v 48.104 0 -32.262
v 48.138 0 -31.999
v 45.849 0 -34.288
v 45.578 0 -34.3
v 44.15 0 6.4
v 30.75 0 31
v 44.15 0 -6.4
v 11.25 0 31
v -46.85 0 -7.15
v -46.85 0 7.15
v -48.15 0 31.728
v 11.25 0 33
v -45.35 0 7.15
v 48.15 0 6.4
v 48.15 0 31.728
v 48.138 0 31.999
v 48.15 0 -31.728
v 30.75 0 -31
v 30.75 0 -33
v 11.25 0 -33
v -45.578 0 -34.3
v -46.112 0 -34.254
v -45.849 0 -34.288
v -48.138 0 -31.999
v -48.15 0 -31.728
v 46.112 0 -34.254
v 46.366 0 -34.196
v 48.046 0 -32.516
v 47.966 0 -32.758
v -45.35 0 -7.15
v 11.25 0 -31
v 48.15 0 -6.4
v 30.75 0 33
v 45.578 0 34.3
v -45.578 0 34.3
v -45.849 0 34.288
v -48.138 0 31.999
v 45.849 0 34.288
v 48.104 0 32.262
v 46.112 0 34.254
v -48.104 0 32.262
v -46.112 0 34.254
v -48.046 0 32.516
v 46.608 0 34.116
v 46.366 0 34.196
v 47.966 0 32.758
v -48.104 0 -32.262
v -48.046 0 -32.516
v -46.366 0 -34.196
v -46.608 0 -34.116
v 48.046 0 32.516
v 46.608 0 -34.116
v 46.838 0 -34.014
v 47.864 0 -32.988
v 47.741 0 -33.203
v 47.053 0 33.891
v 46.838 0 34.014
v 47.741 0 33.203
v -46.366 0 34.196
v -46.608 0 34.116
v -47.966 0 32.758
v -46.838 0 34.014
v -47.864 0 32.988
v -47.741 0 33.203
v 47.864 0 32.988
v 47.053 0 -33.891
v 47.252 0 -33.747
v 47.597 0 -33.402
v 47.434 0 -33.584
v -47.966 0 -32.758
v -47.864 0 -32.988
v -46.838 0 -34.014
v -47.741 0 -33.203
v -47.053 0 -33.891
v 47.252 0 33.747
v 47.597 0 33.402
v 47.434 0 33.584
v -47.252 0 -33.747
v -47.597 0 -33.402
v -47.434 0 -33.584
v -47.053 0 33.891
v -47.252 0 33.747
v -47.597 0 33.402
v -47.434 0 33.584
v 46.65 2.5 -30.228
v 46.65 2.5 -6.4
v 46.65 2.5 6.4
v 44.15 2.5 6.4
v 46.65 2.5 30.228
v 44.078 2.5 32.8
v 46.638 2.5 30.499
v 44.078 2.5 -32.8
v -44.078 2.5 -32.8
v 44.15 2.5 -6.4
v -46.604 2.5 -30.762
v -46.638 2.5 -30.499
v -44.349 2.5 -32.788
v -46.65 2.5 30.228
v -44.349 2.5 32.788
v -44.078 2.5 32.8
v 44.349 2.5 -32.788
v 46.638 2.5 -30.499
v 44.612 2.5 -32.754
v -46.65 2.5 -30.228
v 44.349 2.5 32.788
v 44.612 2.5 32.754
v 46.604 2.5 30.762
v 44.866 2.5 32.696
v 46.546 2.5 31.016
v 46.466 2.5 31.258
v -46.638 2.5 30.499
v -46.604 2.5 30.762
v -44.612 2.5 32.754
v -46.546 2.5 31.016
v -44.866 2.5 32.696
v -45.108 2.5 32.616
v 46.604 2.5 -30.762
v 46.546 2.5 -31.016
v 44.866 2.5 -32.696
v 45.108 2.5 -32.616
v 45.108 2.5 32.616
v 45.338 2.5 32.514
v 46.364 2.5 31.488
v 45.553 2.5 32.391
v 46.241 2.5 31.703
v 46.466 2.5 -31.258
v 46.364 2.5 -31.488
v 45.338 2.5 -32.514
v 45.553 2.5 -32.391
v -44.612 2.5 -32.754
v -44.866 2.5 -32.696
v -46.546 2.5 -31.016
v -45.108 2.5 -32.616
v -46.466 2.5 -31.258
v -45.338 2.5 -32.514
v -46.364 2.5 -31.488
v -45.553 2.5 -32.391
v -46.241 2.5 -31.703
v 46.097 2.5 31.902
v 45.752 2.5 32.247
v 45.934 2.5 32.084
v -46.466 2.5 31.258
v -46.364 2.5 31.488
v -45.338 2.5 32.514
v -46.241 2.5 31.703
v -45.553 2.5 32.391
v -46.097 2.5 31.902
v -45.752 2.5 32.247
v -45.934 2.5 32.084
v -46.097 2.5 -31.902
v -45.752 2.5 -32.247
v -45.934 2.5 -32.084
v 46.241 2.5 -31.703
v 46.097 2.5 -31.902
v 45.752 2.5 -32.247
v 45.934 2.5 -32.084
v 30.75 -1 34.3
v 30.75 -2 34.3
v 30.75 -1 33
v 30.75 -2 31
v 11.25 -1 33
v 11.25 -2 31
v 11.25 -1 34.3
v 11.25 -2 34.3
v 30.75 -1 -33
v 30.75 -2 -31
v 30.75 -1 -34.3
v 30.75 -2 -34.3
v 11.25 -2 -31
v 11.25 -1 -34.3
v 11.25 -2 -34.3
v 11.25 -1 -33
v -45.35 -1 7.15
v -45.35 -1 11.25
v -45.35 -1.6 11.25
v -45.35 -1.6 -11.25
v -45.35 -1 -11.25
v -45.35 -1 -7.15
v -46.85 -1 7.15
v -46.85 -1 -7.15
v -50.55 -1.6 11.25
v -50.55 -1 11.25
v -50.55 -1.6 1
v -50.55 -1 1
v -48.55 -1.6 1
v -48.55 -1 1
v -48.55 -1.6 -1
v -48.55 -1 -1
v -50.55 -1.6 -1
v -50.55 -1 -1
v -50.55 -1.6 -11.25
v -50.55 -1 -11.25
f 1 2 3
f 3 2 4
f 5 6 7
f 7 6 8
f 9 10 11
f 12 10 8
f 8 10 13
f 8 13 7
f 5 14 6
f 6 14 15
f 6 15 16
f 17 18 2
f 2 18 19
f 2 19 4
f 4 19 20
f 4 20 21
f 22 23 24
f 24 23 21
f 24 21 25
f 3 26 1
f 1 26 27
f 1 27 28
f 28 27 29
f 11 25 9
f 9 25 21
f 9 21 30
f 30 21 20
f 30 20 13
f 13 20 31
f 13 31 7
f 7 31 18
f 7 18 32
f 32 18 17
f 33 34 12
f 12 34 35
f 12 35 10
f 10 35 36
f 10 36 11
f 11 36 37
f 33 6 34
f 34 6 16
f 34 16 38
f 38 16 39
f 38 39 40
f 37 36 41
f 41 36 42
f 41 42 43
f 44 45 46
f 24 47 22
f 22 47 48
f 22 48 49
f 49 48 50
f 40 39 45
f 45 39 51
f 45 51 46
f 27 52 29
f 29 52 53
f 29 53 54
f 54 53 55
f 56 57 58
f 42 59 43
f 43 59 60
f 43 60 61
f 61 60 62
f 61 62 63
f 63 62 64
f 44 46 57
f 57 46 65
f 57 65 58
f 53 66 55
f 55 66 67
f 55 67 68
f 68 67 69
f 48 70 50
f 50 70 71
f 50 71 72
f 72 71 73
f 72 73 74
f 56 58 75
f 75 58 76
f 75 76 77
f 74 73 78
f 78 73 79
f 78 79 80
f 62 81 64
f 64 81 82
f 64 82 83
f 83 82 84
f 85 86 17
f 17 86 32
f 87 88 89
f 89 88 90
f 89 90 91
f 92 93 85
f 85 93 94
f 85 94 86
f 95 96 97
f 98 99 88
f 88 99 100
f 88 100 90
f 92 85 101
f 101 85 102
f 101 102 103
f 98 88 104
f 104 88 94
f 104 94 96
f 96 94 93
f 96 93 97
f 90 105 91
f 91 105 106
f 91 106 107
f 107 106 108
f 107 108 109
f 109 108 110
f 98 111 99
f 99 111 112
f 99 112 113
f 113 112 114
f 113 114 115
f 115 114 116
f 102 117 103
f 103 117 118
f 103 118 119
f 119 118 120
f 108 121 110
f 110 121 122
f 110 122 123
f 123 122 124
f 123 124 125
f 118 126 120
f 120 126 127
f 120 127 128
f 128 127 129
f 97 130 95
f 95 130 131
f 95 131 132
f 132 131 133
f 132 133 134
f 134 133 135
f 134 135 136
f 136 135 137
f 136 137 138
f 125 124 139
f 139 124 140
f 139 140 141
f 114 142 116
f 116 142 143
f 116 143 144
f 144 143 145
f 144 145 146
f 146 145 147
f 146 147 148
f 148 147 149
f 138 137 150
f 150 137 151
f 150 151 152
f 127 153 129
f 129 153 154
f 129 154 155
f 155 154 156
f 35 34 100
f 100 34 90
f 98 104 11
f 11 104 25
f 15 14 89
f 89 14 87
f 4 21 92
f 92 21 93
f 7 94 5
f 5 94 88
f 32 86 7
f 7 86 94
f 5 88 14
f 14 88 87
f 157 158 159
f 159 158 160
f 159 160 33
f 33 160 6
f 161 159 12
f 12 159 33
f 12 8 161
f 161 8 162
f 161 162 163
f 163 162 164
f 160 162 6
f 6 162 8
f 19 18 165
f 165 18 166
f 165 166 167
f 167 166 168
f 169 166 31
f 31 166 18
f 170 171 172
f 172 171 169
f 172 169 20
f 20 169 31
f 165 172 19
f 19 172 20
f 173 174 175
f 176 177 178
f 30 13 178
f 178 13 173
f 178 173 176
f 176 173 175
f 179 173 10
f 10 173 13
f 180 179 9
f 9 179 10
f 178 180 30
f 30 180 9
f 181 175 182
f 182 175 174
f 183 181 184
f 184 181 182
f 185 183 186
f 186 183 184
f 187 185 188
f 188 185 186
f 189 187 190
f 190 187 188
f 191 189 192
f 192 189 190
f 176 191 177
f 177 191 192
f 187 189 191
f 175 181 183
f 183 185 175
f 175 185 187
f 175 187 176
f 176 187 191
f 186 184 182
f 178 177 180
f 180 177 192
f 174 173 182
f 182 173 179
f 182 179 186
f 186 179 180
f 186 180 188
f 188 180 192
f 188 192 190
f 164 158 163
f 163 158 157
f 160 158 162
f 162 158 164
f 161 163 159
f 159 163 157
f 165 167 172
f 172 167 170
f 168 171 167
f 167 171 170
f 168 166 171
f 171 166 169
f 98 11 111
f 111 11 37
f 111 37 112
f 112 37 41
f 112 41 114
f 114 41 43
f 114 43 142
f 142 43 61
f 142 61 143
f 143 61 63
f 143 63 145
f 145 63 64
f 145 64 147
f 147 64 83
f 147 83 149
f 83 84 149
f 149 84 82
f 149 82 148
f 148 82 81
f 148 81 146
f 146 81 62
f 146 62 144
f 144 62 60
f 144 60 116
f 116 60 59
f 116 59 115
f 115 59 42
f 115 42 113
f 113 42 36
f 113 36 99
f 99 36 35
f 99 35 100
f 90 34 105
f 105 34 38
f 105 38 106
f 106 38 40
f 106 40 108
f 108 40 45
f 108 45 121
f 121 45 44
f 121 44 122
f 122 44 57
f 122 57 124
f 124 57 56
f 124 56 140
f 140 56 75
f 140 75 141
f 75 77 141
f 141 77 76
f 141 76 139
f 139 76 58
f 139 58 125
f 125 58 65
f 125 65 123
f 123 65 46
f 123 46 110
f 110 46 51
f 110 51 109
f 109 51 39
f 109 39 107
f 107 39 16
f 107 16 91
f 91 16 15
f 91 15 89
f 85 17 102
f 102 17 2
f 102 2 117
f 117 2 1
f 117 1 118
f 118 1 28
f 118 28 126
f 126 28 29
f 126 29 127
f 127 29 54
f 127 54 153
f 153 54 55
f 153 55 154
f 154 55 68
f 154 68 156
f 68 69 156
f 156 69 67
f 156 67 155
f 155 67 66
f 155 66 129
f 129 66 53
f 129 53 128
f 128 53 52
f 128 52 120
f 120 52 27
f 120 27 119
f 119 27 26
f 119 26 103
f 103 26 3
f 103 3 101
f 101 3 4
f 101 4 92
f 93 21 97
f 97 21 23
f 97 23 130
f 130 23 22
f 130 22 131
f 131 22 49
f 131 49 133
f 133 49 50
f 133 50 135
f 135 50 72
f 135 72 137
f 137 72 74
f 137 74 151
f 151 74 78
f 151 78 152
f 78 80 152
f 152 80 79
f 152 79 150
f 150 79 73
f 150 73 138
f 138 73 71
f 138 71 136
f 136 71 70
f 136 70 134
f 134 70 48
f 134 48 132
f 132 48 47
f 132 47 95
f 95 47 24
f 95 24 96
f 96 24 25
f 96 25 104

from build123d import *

# Parameters (mm, degrees)
SKETCH3_W           = 4
SKETCH3_H           = 12.8
CUT_EXTRUDE1_DEPTH  = 60.170622077
SKETCH4_W           = 19.5
SKETCH4_H           = 2
SKETCH4_W_2         = 1.5
SKETCH4_H_2         = 14.3
BOSS_EXTRUDE1_DEPTH = 1
BOSS_EXTRUDE2_DEPTH = 0.6
SKETCH6_W           = 19.5
SKETCH6_H           = 3.3
BOSS_EXTRUDE3_DEPTH = 1
FILLET1_R           = 3


with BuildPart() as part:
    # Sketch1 → Loft1 section 0
    with BuildSketch(Plane(origin=(0, 0, 0), x_dir=(1, 0, 0), z_dir=(0, 1, 0))):
        with BuildLine():
            Line((-48.15, -34.3), (48.15, -34.3))
            Line((48.15, -34.3), (48.15, 34.3))
            Line((48.15, 34.3), (-48.15, 34.3))
            Line((-48.15, 34.3), (-48.15, -34.3))
        make_face()
    # Sketch2 → Loft1 section 1
    with BuildSketch(Plane(origin=(0, 2.5, 0), x_dir=(1, 0, 0), z_dir=(0, 1, 0))):
        with BuildLine():
            Line((-46.65, -32.8), (46.65, -32.8))
            Line((46.65, -32.8), (46.65, 32.8))
            Line((46.65, 32.8), (-46.65, 32.8))
            Line((-46.65, 32.8), (-46.65, -32.8))
        make_face()
    loft()

    # Sketch3 → Cut-Extrude1 (cut, through all)
    with BuildSketch(Plane.XZ):
        with Locations((46.15, 0)):
            Rectangle(SKETCH3_W, SKETCH3_H)
    extrude(amount=-CUT_EXTRUDE1_DEPTH, mode=Mode.SUBTRACT)

    # Sketch4 → Boss-Extrude1 (add)
    with BuildSketch(Plane.XZ):
        with Locations((21, 32)):
            Rectangle(SKETCH4_W, SKETCH4_H)
        with Locations((21, -32)):
            Rectangle(SKETCH4_W, SKETCH4_H)
        with Locations((-46.1, 0)):
            Rectangle(SKETCH4_W_2, SKETCH4_H_2)
    extrude(amount=BOSS_EXTRUDE1_DEPTH)

    # Sketch5 → Boss-Extrude2 (add)
    with BuildSketch(Plane.XZ.offset(1)):
        Polygon((-50.55, -11.25), (-45.35, -11.25), (-45.35, 11.25), (-50.55, 11.25), (-50.55, 1), (-48.55, 1), (-48.55, -1), (-50.55, -1), align=None)
    extrude(amount=BOSS_EXTRUDE2_DEPTH)

    # Sketch6 → Boss-Extrude3 (add)
    with BuildSketch(Plane.XZ.offset(1)):
        with Locations((21, 32.65)):
            Rectangle(SKETCH6_W, SKETCH6_H)
        with Locations((21, -32.65)):
            Rectangle(SKETCH6_W, SKETCH6_H)
    extrude(amount=BOSS_EXTRUDE3_DEPTH)

    # Fillet1
    # the kernel refuses this fillet: 3 mm, written as the material it takes off along each edge
    with BuildSketch(Plane(origin=(-50.76627907, -4.360465116, 36.91627907), x_dir=(-0.23537960143467007, -0.3922993357244589, -0.8892118276421003), z_dir=(0.4574957109978059, 0.7624928516630279, -0.45749571099781455)), Plane(origin=(50.76627907, -4.360465116, -36.91627907), x_dir=(0.2353796014346717, -0.39229933572445586, 0.8892118276421013), z_dir=(-0.4574957109978127, 0.7624928516630248, 0.4574957109978127)), Plane(origin=(-50.76627907, -4.360465116, -36.91627907), x_dir=(0.8892118276421047, -0.39229933572444886, -0.23537960143466988), z_dir=(0.4574957109978059, 0.7624928516630279, 0.45749571099781455))) as fillet1_piece_1:
        with BuildLine():
            CenterArc((FILLET1_R * 0.762492851663, -FILLET1_R), FILLET1_R, 90, 74.650522983)
            Line((-FILLET1_R * 0.201836343087, -FILLET1_R * 0.735294117647), (0, 0))
            Line((0, 0), (FILLET1_R * 0.762492851663, 0))
        make_face()
    extrude(amount=14.716112037, mode=Mode.SUBTRACT)
    with BuildSketch(Plane(origin=(50.76627907, -4.360465116, 36.91627907), x_dir=(0.2353796014346717, -0.39229933572445586, -0.8892118276421013), z_dir=(-0.4574957109978127, 0.7624928516630248, -0.4574957109978127))) as fillet1_piece_2:
        with BuildLine():
            CenterArc((FILLET1_R * 0.762492851663, FILLET1_R), FILLET1_R, 195.349477017, 74.650522983)
            Line((-FILLET1_R * 0.201836343087, FILLET1_R * 0.735294117647), (0, 0))
            Line((0, 0), (FILLET1_R * 0.762492851663, 0))
        make_face()
    extrude(amount=14.716112037, mode=Mode.SUBTRACT)


solid = part.part
